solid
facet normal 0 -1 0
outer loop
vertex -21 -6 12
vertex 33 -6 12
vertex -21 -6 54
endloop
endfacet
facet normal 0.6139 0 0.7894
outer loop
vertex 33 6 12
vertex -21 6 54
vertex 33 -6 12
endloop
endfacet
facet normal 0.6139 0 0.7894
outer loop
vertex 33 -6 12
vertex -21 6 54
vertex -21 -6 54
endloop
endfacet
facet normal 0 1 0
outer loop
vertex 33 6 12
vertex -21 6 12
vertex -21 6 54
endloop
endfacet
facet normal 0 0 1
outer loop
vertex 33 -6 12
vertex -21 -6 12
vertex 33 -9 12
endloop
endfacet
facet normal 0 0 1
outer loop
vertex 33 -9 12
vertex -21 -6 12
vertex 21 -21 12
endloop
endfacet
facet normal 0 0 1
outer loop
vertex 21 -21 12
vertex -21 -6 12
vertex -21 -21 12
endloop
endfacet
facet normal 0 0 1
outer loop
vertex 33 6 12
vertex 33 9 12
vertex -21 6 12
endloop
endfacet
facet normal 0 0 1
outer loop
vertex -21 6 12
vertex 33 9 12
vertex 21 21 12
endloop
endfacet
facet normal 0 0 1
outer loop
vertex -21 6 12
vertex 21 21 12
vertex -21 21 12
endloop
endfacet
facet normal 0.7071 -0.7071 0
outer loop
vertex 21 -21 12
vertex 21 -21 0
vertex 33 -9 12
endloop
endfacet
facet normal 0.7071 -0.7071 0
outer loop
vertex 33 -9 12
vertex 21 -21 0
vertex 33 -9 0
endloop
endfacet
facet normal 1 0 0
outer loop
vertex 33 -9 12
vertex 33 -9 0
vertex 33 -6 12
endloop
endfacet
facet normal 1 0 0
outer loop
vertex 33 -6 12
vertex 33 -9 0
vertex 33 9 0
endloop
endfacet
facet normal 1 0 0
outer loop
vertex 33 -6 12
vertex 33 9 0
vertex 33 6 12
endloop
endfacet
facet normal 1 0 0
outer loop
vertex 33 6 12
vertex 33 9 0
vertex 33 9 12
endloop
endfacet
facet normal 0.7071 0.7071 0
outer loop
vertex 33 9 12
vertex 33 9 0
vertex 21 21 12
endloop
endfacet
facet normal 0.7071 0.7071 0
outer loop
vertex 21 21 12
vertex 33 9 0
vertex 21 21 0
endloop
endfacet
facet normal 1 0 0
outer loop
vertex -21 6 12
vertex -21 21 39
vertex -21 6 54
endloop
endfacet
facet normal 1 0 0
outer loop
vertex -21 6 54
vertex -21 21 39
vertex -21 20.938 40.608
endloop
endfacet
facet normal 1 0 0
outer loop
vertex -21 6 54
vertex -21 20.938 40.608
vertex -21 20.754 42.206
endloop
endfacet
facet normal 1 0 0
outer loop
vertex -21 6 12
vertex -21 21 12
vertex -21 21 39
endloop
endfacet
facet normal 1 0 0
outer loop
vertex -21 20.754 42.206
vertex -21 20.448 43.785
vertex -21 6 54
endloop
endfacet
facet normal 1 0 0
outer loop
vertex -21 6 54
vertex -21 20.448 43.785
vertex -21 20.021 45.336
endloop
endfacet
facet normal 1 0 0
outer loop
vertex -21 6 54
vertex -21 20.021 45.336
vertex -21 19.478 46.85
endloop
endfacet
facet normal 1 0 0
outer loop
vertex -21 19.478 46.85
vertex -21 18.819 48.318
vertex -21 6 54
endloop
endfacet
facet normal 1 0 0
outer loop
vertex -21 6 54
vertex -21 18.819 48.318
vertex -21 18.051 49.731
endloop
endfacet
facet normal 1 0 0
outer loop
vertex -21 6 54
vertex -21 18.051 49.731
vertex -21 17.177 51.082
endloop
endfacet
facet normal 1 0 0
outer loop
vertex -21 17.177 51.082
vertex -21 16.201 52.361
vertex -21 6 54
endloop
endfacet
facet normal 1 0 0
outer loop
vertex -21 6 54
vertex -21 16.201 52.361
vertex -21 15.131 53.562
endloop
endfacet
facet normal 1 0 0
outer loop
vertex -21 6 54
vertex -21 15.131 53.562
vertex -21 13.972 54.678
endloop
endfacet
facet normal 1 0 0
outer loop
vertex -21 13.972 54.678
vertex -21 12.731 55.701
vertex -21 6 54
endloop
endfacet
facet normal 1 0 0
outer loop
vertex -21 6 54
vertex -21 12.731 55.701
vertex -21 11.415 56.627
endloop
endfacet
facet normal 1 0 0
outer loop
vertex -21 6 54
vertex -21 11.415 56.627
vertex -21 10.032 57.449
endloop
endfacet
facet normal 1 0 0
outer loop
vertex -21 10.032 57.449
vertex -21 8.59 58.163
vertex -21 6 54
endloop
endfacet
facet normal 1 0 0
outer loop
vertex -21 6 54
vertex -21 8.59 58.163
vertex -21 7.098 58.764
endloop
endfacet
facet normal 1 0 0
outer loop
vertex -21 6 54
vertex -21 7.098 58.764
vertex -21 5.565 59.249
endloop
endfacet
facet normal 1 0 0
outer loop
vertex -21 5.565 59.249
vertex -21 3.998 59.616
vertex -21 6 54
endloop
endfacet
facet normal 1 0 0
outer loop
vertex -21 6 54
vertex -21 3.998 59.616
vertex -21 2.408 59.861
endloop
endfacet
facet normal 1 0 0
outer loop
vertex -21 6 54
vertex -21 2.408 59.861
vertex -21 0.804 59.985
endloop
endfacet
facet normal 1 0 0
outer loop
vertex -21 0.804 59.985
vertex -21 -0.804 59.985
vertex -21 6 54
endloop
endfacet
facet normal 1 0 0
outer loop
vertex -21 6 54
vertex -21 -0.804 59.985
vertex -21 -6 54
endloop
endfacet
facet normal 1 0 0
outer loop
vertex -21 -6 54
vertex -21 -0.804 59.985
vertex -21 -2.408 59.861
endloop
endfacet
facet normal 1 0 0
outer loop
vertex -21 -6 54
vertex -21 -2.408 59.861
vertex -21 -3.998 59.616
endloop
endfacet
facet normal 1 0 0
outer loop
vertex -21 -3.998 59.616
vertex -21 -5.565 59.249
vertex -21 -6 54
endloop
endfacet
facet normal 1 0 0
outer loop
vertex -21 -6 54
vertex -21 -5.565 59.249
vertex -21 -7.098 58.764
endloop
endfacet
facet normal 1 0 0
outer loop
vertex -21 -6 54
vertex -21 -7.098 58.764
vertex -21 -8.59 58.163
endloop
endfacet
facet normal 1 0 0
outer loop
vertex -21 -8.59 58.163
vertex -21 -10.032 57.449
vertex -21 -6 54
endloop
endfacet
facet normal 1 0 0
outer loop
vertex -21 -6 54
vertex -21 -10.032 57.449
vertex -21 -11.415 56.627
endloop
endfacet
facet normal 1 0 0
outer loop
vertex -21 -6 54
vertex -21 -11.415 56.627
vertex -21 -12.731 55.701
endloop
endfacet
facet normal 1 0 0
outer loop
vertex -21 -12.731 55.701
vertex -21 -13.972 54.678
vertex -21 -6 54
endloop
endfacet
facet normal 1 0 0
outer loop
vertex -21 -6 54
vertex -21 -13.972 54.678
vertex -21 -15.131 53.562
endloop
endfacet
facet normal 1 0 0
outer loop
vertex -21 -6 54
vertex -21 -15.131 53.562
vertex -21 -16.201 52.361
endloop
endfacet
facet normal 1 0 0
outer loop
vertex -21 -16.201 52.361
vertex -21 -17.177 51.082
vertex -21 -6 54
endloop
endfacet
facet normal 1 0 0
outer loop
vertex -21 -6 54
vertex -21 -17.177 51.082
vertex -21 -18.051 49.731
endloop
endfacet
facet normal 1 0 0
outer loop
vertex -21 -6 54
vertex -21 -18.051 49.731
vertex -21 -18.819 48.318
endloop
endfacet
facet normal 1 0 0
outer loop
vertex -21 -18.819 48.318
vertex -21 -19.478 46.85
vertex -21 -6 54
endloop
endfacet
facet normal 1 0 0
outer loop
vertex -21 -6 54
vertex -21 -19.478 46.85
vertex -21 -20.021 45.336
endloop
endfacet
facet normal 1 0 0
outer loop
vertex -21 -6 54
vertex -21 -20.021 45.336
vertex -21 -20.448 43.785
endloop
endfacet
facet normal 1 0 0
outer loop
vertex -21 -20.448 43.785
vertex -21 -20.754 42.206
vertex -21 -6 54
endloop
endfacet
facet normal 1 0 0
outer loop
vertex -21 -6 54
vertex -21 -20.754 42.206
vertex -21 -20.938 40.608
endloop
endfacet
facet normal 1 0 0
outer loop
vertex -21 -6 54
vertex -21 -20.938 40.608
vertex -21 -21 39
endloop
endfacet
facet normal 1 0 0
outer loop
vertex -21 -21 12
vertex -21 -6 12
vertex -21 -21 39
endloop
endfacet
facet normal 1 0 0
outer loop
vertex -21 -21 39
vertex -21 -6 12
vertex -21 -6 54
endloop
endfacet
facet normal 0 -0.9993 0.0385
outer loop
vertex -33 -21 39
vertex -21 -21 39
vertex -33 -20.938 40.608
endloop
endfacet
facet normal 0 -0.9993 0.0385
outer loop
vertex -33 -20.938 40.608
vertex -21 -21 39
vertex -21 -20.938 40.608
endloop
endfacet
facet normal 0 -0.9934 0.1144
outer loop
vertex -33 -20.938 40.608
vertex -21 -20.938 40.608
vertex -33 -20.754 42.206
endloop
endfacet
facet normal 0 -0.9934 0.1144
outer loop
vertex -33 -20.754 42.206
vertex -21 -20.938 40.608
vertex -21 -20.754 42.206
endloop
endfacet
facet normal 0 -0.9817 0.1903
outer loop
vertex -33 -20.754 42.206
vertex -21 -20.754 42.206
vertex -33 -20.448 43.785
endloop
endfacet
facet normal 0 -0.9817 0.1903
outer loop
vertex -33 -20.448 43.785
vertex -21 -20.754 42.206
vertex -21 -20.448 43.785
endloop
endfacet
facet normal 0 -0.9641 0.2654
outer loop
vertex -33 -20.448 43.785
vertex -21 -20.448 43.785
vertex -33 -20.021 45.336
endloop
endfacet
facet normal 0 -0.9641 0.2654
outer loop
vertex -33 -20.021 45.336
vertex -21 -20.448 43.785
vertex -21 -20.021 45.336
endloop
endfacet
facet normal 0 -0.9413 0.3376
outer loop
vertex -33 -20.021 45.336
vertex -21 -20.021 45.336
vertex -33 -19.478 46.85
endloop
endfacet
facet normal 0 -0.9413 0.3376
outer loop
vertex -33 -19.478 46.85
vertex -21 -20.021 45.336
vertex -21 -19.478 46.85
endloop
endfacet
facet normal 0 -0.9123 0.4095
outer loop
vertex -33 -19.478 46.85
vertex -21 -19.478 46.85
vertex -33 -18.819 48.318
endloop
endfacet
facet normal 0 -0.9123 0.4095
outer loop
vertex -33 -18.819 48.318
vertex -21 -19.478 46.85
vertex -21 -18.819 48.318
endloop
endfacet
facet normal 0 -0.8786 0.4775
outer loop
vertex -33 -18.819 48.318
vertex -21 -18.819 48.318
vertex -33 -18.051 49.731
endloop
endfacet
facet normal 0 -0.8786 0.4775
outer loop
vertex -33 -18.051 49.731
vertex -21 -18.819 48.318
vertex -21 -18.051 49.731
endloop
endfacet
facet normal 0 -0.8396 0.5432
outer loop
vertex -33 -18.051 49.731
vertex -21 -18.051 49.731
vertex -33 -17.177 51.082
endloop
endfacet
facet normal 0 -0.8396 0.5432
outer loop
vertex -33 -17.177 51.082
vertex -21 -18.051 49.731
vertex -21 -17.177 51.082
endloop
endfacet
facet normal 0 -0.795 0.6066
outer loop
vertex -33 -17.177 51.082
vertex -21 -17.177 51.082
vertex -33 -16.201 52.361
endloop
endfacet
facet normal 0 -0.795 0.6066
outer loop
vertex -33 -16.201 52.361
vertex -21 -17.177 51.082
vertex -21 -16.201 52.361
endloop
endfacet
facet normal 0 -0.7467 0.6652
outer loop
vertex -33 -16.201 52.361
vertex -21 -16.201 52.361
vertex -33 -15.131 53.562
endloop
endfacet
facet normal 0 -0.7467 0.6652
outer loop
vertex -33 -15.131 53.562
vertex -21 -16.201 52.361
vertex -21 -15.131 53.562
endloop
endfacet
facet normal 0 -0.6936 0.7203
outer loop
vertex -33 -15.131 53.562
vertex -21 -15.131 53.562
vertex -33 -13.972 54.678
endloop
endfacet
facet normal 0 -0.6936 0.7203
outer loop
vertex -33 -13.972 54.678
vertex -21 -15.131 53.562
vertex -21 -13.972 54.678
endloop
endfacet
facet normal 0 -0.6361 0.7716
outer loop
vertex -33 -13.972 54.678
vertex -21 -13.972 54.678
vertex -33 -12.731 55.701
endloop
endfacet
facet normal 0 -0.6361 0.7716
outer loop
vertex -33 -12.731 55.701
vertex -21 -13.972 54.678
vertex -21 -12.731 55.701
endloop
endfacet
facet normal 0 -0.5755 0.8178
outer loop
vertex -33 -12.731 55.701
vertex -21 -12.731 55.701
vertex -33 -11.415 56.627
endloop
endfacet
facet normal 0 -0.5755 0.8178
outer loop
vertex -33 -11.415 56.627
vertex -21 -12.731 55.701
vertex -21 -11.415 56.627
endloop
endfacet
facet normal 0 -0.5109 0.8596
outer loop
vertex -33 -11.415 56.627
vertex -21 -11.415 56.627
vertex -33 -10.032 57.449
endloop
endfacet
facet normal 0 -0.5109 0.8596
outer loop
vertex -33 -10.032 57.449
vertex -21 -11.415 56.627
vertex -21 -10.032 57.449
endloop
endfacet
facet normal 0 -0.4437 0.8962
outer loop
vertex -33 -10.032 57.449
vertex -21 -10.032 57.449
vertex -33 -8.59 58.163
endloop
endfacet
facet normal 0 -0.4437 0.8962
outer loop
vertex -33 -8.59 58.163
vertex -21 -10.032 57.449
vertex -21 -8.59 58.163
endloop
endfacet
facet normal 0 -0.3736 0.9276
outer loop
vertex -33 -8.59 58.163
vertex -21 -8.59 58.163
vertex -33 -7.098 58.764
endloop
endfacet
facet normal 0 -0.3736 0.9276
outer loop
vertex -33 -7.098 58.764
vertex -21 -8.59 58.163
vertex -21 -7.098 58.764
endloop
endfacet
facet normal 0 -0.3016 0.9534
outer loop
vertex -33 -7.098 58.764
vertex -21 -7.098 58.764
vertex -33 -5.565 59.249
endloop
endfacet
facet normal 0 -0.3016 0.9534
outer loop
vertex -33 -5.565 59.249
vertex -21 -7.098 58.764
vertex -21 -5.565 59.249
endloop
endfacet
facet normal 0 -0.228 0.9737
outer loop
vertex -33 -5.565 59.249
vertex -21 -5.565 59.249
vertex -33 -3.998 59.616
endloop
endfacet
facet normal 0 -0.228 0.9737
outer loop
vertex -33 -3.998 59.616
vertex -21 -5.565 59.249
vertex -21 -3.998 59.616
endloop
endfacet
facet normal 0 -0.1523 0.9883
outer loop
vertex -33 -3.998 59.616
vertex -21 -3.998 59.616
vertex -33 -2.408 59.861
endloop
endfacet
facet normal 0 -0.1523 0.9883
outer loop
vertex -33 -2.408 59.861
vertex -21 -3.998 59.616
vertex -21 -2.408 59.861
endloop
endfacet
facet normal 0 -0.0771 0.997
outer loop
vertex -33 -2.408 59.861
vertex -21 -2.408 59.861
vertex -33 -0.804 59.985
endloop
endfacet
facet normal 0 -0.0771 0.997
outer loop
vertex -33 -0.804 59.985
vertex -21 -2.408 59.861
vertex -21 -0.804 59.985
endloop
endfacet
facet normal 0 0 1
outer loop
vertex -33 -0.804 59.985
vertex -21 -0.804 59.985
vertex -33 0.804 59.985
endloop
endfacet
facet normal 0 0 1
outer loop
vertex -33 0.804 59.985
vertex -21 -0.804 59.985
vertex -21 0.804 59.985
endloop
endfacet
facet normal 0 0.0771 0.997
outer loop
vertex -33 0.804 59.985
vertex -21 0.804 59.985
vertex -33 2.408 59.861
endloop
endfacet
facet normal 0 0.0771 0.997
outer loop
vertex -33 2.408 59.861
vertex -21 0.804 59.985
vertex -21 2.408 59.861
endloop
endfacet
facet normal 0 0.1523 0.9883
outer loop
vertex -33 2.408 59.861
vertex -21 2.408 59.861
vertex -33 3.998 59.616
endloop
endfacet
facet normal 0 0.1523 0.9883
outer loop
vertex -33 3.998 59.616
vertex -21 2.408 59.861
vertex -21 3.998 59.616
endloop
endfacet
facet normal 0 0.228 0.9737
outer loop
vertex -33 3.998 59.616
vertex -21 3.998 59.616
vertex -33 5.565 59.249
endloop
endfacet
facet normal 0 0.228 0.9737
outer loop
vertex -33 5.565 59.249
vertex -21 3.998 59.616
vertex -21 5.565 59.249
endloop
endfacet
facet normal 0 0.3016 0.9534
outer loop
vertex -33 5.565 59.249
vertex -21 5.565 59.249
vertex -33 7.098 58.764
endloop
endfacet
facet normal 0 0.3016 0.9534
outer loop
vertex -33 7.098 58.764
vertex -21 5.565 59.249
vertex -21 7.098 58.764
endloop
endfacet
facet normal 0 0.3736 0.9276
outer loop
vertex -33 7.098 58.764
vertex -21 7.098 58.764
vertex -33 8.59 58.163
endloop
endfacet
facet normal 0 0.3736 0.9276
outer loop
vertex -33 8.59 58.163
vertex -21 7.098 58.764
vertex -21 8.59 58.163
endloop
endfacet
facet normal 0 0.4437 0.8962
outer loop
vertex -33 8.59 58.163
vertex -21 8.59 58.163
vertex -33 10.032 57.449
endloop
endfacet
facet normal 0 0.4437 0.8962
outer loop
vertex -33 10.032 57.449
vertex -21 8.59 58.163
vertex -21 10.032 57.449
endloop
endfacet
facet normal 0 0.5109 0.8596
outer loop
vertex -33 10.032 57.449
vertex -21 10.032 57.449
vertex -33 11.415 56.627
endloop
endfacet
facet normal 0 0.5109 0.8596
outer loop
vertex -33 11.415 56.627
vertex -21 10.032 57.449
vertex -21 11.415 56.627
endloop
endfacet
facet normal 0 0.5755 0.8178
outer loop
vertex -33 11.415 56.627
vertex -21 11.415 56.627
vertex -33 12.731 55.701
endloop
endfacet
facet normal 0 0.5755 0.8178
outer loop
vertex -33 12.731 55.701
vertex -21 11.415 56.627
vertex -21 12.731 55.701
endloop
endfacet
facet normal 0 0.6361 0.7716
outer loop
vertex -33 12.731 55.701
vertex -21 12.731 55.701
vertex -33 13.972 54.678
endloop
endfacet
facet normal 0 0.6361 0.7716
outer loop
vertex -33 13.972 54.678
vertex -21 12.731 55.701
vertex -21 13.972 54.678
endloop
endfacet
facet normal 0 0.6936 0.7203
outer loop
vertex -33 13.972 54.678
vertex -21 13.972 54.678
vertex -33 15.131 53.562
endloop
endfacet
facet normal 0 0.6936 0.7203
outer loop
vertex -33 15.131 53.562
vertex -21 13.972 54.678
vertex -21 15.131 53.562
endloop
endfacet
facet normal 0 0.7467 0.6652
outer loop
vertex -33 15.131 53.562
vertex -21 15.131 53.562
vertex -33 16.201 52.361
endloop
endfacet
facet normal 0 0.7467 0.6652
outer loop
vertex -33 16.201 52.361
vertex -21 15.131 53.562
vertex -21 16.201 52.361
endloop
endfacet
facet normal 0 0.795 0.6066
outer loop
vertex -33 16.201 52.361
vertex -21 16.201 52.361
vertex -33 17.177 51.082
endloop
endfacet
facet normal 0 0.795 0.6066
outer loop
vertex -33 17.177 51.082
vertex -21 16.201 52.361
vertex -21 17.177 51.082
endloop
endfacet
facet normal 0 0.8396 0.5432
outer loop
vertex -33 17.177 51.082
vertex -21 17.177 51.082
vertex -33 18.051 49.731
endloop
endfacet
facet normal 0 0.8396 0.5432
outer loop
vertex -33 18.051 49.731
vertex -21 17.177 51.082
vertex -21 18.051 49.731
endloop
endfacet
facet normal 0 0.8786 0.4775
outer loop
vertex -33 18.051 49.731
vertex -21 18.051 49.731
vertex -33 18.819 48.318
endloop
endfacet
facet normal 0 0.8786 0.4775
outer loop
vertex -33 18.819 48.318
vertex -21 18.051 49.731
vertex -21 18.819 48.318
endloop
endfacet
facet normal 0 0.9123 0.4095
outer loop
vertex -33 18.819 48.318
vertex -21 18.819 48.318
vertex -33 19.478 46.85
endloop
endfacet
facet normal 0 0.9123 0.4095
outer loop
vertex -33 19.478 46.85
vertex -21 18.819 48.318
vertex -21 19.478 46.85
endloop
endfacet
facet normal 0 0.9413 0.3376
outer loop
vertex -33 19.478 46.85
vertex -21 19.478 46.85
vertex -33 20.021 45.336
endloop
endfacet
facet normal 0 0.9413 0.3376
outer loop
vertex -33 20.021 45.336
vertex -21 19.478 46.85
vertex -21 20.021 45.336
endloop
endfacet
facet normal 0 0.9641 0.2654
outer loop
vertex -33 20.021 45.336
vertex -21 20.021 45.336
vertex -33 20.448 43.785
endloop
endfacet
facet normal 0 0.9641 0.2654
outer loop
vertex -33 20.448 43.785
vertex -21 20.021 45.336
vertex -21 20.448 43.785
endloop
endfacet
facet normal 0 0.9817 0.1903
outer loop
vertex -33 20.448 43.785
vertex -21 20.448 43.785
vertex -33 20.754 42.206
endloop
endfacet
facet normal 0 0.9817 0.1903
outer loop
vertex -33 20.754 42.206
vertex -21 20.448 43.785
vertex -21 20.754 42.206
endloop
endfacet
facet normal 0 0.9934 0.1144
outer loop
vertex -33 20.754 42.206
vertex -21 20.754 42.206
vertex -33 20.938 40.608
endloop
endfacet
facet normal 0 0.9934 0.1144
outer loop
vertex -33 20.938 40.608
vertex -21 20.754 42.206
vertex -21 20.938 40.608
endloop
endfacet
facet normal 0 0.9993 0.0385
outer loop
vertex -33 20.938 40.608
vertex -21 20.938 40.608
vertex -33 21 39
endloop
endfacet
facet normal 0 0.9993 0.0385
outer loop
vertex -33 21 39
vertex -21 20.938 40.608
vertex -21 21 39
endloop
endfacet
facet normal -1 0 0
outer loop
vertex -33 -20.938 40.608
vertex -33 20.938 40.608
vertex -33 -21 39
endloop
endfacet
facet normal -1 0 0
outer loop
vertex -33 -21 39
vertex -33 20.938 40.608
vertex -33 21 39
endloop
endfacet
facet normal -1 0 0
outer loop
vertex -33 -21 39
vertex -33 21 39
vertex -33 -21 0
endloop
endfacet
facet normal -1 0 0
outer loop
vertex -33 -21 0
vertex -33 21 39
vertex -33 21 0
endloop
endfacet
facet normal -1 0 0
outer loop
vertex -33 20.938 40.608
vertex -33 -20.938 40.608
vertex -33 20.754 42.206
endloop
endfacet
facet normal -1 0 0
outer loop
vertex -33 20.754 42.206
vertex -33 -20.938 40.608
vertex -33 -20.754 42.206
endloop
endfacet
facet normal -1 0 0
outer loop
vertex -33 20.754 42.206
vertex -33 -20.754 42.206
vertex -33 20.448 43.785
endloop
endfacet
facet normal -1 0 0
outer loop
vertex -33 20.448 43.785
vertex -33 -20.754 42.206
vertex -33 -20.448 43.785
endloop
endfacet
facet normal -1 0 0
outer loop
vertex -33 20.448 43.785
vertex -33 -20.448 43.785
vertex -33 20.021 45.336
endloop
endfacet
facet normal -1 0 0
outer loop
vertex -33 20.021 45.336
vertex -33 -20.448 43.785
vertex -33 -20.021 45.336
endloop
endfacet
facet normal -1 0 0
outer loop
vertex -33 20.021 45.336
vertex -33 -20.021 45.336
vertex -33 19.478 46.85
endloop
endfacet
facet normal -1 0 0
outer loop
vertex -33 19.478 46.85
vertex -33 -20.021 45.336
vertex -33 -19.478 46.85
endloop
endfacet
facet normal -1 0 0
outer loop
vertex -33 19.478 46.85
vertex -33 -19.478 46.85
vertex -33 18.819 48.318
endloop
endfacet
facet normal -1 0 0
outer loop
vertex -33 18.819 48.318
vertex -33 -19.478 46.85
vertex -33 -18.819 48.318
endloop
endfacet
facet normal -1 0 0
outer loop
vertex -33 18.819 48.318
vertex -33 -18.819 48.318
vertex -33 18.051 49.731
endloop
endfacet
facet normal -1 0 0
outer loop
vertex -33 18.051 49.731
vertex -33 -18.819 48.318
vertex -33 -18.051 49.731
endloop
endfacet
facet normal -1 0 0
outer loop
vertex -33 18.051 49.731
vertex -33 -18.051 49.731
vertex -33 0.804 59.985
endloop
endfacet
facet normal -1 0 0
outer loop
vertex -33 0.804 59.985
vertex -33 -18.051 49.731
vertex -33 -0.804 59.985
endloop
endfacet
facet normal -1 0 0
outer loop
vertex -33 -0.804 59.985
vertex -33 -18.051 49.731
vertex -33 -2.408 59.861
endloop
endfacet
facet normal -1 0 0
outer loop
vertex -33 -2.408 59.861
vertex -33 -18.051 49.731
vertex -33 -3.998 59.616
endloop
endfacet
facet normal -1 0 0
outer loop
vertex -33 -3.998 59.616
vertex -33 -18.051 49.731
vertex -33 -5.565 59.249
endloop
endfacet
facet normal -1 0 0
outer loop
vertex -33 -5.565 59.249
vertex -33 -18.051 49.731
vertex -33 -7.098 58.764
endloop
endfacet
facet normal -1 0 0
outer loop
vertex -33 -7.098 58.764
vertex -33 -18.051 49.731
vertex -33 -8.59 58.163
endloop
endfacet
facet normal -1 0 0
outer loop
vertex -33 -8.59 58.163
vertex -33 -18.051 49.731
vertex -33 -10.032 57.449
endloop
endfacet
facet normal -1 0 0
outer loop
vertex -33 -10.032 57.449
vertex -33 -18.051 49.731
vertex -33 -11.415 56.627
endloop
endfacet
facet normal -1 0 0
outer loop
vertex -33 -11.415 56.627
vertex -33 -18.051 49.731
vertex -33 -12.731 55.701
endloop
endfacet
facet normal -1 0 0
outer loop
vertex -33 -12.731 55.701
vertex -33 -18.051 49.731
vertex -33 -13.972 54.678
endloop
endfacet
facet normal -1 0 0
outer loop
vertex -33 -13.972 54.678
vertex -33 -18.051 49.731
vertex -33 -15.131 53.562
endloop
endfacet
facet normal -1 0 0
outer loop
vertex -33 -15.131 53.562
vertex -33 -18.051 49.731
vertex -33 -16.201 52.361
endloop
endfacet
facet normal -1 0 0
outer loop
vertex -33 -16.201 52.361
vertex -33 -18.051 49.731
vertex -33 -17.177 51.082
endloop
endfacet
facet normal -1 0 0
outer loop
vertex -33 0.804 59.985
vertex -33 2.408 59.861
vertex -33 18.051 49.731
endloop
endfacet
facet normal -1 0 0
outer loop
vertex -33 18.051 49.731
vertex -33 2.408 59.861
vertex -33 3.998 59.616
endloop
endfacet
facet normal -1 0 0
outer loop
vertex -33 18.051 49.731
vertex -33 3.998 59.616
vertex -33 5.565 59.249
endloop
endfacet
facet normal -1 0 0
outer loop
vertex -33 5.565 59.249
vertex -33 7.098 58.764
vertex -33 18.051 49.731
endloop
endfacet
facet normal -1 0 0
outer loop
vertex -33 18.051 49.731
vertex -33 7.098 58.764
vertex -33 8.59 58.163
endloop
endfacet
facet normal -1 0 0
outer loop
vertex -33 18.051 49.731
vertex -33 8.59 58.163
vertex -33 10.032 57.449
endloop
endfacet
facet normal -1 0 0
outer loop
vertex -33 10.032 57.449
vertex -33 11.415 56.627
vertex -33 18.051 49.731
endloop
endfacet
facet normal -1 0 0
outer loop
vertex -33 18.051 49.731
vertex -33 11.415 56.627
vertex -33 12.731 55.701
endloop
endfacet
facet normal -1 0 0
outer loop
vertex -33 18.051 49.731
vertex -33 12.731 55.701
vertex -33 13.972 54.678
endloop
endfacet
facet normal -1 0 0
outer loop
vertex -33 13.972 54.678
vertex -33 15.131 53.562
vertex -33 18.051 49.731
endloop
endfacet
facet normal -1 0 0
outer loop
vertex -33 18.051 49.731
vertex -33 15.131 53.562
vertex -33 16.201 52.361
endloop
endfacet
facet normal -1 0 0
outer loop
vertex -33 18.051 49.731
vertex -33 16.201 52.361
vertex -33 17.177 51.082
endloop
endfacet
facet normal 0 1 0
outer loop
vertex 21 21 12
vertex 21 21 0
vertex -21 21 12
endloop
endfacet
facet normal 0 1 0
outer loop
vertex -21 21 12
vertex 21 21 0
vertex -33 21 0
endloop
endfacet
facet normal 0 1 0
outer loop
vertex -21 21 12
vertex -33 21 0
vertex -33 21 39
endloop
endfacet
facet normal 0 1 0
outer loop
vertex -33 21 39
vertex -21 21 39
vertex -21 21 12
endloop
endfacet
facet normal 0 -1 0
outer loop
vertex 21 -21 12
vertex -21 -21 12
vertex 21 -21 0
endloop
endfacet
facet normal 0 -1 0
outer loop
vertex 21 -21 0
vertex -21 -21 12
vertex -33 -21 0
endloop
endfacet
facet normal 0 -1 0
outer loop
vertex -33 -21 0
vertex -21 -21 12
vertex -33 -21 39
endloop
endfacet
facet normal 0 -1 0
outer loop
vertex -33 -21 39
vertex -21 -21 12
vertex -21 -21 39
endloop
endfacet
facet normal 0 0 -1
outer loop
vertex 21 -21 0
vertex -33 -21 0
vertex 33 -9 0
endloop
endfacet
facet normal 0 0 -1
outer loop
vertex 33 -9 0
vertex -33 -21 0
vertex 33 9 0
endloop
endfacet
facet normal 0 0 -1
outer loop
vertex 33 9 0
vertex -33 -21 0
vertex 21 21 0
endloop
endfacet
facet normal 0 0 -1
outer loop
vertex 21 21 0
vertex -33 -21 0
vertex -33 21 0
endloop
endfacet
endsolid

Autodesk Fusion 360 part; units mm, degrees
sketch "the horizontal part sketch" plane through (0, 0, 0) normal (0, 0, 1) x (1, 0, 0)
  line L0 (-33, 21) -> (33, 21)
  line L1 (33, 21) -> (33, -21)
  line L2 (33, -21) -> (-33, -21)
  line L3 (-33, -21) -> (-33, 21)
  line L4 (-33, 21) -> (33, -21) construction
  line L5 (33, 21) -> (-33, -21) construction
  dimension "d1" = 66
  dimension "d2" = 42
extrude "Extrude1" add sketch "the horizontal part sketch" along normal blind 12 makes body 1
sketch "the vertical part sketch" plane through (0, 0, 12) normal (0, 0, 1) x (-1, 0, 0)
  line L0 (33, 21) -> (-33, 21)
  line L1 (-33, 21) -> (-33, -21)
  line L2 (-33, -21) -> (33, -21)
  line L3 (33, -21) -> (33, 21)
  line L4 (33, -21) -> (21, -21)
  line L5 (21, -21) -> (21, 21)
  line L6 (21, 21) -> (33, 21)
  line L7 (33, 21) -> (33, -21)
  dimension "d5" = 12
extrude "Extrude2" add sketch "the vertical part sketch" along normal blind 48 contours L0 L2 L3 L4 L5 L6 L7 bodies 1
fillet "Fillet1" radius 21 1 edges at (-27, -21, 60) on bodies 1
fillet "Fillet2" radius 21 1 edges at (-27, 21, 60) on bodies 1
chamfer "Chamfer1" distance 12 angle 45 1 edges at (33, 21, 6) on bodies 1
chamfer "Chamfer2" distance 12 angle 45 1 edges at (33, -21, 6) on bodies 1
sketch "triangle sketch" plane through (0, 0, 0) normal (0, 1, 0) x (1, 0, 0)
  line L0 (-21, -54) -> (-21, -12)
  line L1 (-21, -12) -> (33, -12)
  line L2 (33, -12) -> (-21, -54)
  dimension "d14" = 42
  dimension "d15" = 54
extrude "Extrude3" add sketch "triangle sketch" along normal mid plane 12 bodies 1
copy_body "Body->Comp1" bodies 1 removing the originals makes body 2 in component "object A1"
component "object A1" placed x (1, 0, 0) y (0, 1, 0) z (0, 0, 1) at (0, 0, 0)
equation "d6 = 60 mm - 12 mm"
equation "d15 = 66 mm - 12 mm"
